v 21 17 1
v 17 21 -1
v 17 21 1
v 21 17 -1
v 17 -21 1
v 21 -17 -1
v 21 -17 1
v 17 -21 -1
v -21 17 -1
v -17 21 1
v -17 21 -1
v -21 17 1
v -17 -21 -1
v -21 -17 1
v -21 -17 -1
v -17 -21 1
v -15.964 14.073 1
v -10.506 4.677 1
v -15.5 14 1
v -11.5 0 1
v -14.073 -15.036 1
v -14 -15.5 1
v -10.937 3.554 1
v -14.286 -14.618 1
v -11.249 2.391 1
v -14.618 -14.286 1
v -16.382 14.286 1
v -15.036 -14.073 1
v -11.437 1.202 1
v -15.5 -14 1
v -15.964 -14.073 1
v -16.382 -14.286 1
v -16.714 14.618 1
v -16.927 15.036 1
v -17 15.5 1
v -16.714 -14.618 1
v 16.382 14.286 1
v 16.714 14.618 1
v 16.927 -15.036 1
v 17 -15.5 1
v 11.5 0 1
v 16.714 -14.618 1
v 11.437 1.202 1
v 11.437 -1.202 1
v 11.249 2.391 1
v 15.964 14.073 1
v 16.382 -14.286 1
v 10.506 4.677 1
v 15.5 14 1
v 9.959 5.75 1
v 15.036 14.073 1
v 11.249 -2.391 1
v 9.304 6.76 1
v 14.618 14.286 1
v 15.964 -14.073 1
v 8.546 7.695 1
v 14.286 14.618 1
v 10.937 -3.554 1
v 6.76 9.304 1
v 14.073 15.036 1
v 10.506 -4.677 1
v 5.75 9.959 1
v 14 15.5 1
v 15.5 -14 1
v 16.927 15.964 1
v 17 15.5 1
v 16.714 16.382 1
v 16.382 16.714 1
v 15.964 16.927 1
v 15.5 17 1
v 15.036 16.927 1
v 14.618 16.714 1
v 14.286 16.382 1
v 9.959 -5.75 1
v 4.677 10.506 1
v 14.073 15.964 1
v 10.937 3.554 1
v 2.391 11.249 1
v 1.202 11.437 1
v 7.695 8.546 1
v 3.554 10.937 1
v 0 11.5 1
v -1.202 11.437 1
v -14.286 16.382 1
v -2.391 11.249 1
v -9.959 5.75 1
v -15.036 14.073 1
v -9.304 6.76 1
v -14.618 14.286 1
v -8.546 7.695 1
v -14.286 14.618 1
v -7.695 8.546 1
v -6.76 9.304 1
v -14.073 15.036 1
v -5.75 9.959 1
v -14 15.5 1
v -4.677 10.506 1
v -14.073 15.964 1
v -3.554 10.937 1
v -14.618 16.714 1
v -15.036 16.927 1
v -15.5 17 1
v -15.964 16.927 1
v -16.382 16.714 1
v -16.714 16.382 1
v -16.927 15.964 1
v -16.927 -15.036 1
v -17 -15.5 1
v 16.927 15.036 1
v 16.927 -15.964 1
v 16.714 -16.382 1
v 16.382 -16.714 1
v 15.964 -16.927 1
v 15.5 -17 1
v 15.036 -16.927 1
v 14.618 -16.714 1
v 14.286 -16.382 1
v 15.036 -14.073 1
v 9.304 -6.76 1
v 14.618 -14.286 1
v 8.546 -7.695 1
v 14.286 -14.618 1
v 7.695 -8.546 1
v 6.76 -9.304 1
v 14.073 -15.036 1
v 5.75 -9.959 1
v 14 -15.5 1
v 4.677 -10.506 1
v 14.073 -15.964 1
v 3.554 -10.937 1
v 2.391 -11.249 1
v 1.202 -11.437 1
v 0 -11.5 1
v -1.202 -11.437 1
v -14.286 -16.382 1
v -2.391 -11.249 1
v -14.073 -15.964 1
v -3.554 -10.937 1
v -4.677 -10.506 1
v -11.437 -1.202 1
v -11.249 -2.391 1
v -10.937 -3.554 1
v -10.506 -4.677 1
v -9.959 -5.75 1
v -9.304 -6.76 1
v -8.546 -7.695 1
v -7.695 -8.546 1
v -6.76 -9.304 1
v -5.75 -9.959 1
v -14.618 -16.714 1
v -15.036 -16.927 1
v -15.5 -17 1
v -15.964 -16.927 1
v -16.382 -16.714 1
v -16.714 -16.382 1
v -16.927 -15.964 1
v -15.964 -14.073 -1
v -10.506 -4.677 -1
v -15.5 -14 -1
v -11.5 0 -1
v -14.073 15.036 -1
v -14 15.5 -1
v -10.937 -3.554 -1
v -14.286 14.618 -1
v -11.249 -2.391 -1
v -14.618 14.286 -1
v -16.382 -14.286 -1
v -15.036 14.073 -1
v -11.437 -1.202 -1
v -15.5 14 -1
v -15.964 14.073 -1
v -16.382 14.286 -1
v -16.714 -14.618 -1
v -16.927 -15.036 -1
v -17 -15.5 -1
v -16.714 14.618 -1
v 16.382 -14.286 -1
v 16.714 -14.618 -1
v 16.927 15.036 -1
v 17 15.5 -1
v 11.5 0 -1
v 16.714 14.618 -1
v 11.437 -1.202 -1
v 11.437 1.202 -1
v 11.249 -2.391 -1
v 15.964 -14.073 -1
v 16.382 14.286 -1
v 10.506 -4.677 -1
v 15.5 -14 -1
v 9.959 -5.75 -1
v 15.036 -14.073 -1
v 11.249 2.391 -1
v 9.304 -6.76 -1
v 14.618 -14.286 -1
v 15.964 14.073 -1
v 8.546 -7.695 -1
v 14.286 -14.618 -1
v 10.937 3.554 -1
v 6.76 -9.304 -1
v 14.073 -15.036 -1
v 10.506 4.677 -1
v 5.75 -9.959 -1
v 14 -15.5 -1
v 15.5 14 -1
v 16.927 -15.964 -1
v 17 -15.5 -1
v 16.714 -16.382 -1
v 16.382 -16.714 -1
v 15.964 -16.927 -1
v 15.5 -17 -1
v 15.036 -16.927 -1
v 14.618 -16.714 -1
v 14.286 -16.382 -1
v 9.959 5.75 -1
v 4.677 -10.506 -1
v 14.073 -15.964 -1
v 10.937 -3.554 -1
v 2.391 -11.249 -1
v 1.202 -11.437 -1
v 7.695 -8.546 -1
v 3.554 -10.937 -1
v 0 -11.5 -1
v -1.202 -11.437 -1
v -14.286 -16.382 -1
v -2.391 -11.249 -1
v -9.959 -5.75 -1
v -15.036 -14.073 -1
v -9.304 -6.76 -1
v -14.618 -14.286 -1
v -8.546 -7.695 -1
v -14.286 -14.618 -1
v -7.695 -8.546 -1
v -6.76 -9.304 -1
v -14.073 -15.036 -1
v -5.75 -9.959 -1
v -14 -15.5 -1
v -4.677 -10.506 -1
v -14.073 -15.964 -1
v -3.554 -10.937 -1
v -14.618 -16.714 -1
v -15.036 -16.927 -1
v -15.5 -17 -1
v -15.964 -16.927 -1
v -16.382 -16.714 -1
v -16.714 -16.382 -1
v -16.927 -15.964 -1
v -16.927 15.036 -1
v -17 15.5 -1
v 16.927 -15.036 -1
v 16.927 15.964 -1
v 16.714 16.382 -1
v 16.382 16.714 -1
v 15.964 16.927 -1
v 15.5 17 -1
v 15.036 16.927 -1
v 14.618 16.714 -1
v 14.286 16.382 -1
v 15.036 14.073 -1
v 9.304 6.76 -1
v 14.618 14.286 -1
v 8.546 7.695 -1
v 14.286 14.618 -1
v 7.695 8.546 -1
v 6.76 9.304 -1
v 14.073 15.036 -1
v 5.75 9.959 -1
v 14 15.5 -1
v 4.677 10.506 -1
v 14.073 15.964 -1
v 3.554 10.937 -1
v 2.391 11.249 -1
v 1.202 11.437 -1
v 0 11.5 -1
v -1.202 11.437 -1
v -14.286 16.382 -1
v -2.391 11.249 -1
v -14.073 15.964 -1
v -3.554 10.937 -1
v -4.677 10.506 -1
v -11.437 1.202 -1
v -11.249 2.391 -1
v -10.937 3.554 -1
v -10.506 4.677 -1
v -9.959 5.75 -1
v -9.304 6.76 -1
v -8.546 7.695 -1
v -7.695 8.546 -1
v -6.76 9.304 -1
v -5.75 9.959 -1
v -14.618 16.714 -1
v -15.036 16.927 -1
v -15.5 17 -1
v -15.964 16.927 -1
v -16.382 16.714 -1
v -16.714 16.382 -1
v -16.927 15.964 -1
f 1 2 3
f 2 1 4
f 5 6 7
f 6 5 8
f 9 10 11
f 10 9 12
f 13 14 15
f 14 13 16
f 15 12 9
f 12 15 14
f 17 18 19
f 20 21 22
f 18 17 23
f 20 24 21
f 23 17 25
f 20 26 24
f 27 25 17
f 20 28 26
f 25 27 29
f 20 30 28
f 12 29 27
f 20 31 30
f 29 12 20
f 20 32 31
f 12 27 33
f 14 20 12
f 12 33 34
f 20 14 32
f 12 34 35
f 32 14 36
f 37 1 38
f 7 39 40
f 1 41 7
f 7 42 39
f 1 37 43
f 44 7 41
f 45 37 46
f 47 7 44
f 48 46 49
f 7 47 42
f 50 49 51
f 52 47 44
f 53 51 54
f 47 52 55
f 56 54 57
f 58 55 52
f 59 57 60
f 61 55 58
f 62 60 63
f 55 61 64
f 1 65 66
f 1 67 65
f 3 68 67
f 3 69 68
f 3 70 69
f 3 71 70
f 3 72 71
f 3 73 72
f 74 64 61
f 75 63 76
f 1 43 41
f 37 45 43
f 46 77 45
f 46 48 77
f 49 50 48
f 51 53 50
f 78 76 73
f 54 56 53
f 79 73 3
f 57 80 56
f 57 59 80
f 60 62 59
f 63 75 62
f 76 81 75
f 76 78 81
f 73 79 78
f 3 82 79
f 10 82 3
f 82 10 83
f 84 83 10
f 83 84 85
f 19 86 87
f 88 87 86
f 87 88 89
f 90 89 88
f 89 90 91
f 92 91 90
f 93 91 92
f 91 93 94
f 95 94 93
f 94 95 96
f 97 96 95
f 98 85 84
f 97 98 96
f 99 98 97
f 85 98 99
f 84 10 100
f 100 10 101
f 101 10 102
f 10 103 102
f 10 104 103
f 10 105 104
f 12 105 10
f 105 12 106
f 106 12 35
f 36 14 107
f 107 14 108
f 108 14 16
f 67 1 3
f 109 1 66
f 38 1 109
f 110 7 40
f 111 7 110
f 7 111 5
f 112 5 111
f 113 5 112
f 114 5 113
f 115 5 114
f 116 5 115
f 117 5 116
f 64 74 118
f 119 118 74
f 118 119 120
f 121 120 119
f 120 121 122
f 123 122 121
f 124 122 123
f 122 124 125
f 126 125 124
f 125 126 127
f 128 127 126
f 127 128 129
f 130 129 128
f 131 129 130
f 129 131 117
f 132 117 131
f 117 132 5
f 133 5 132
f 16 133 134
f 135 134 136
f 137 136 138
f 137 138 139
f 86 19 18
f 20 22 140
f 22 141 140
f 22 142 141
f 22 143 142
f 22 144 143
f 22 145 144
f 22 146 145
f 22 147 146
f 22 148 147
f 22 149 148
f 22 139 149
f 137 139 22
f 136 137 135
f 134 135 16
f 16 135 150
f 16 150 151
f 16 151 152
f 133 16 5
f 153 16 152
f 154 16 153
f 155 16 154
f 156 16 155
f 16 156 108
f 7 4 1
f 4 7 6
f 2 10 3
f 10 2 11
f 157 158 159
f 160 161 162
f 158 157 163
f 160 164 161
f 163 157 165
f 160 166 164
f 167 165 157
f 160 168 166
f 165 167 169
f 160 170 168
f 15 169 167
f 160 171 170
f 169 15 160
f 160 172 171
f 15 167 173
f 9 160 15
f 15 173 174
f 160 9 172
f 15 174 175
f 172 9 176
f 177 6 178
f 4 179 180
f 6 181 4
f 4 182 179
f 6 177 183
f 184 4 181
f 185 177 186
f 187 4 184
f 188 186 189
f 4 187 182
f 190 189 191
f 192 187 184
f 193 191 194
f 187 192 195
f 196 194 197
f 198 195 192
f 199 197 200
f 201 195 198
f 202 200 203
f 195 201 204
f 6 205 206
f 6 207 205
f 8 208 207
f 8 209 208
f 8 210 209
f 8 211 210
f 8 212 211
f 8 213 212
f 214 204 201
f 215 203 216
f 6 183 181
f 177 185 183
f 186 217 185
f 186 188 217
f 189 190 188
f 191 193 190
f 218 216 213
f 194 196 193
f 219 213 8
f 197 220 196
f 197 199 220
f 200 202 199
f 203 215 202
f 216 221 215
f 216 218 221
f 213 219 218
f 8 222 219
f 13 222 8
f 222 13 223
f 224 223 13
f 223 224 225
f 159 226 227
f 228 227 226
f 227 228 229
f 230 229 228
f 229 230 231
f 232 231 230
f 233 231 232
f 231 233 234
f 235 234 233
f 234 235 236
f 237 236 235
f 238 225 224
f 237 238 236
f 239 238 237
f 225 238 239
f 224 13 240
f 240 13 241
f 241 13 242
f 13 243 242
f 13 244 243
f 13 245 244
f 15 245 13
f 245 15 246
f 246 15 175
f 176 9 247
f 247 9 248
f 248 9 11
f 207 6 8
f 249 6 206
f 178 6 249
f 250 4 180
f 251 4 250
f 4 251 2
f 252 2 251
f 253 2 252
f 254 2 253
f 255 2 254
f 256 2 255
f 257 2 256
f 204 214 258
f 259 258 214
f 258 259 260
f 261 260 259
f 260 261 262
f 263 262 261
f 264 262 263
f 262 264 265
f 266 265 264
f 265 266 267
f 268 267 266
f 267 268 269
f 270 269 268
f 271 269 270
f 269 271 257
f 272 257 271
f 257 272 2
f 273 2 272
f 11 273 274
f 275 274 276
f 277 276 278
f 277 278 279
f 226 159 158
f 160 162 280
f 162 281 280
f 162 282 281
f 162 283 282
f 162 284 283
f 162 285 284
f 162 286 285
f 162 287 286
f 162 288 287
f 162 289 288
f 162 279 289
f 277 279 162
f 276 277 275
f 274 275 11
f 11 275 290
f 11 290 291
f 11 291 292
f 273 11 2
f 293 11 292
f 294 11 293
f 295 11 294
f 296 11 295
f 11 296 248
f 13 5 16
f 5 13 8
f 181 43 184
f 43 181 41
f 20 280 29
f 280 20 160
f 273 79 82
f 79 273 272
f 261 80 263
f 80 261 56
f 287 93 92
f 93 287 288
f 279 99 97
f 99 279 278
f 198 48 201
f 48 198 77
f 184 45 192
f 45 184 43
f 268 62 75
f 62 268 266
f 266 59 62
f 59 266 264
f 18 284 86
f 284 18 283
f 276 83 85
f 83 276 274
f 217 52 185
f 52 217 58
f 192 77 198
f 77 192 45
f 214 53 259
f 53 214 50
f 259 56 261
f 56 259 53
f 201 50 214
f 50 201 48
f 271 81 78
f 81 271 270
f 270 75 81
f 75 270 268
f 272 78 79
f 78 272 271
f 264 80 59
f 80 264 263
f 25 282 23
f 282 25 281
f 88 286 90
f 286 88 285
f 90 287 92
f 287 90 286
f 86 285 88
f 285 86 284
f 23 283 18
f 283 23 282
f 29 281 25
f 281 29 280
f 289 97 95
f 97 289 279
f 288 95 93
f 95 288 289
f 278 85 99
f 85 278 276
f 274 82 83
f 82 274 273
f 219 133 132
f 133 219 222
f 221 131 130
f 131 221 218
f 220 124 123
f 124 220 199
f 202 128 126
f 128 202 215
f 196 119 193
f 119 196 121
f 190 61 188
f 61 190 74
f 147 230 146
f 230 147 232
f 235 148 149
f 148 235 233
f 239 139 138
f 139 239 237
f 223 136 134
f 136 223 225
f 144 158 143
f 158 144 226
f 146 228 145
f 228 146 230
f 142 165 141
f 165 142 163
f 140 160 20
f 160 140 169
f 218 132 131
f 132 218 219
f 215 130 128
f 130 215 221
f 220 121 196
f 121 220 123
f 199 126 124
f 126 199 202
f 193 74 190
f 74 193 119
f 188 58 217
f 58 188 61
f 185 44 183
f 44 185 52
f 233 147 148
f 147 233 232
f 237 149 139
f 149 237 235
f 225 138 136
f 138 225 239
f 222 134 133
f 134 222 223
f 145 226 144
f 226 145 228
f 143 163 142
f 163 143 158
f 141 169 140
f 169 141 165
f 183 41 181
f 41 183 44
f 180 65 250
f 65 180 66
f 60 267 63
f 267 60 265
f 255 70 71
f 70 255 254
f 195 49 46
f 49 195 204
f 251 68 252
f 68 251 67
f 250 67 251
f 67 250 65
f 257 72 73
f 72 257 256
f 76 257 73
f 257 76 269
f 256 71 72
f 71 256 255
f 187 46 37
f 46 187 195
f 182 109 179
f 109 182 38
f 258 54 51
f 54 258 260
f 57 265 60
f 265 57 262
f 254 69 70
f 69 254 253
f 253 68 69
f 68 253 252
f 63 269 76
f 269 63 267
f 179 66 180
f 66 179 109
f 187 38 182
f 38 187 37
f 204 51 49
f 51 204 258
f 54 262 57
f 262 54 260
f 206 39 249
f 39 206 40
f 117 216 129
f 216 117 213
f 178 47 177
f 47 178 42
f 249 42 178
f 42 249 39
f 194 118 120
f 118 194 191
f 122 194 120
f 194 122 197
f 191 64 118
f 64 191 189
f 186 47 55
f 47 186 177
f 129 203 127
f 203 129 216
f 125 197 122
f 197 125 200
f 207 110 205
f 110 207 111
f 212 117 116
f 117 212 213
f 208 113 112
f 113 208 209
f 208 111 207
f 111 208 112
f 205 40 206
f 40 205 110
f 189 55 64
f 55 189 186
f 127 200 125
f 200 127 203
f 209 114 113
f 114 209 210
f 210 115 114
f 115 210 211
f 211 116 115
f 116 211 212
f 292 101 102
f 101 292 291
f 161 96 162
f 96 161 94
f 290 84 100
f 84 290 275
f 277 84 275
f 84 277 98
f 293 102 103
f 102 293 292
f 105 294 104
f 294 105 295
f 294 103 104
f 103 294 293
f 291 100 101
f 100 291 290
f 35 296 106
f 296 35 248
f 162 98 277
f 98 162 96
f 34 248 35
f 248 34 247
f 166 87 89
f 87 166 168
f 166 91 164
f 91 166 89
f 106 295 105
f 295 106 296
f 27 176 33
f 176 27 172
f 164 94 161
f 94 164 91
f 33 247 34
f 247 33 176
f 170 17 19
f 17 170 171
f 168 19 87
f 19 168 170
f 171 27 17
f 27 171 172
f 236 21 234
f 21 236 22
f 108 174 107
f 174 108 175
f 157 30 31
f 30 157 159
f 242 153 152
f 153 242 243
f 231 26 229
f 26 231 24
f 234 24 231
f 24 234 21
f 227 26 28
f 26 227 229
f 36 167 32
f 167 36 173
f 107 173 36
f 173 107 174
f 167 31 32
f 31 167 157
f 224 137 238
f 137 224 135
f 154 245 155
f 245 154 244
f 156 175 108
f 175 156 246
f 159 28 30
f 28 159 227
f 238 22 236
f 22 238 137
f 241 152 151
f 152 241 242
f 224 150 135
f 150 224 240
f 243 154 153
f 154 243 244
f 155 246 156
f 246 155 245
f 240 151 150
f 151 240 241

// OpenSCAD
dampener_height = 2;
motor_size = 42;
chamfer = 4;
screw_spacing = 31/2;
screw_diameter = 3;
center_circle = 23;

dampener();

module base_shape(){
    difference(){
        cube([motor_size,motor_size,dampener_height],center=true);
        union(){
            linear_extrude(height=dampener_height+1,
                            center=true,
                            convexity=10)
                polygon(points=[[motor_size/2-chamfer-1,motor_size/2+1],
                                [motor_size/2+1,motor_size/2-chamfer-1],
                                [motor_size/2+1,motor_size/2+1]],
                        convexity=10);
            linear_extrude(height=dampener_height+1,
                            center=true,
                            convexity=10)
                polygon(points=[[motor_size/2-chamfer-1,-motor_size/2-1],
                                [motor_size/2+1,-motor_size/2+chamfer+1],
                                [motor_size/2+1,-motor_size/2-1]],
                        convexity=10);
            linear_extrude(height=dampener_height+1,
                            center=true,
                            convexity=10)
                polygon(points=[[-motor_size/2+chamfer+1,motor_size/2+1],
                                [-motor_size/2-1,motor_size/2-chamfer-1],
                                [-motor_size/2-1,motor_size/2+1]],
                        convexity=10);
            linear_extrude(height=dampener_height+1,
                            center=true,
                            convexity=10)
                polygon(points=[[-motor_size/2+chamfer+1,-motor_size/2-1],
                                [-motor_size/2-1,-motor_size/2+chamfer+1],
                                [-motor_size/2-1,-motor_size/2-1]],
                        convexity=10);}}
}

module dampener(){
    difference(){
        base_shape();
        union(){
            cylinder(d=center_circle,h=dampener_height+1,center=true,$fn=60);
            translate([screw_spacing,screw_spacing,0])
                cylinder(d=screw_diameter,h=dampener_height+1,center=true,$fn=20);
            translate([screw_spacing,-screw_spacing,0])
                cylinder(d=screw_diameter,h=dampener_height+1,center=true,$fn=20);
            translate([-screw_spacing,screw_spacing,0])
                cylinder(d=screw_diameter,h=dampener_height+1,center=true,$fn=20);
            translate([-screw_spacing,-screw_spacing,0])
                cylinder(d=screw_diameter,h=dampener_height+1,center=true,$fn=20);}}
}
